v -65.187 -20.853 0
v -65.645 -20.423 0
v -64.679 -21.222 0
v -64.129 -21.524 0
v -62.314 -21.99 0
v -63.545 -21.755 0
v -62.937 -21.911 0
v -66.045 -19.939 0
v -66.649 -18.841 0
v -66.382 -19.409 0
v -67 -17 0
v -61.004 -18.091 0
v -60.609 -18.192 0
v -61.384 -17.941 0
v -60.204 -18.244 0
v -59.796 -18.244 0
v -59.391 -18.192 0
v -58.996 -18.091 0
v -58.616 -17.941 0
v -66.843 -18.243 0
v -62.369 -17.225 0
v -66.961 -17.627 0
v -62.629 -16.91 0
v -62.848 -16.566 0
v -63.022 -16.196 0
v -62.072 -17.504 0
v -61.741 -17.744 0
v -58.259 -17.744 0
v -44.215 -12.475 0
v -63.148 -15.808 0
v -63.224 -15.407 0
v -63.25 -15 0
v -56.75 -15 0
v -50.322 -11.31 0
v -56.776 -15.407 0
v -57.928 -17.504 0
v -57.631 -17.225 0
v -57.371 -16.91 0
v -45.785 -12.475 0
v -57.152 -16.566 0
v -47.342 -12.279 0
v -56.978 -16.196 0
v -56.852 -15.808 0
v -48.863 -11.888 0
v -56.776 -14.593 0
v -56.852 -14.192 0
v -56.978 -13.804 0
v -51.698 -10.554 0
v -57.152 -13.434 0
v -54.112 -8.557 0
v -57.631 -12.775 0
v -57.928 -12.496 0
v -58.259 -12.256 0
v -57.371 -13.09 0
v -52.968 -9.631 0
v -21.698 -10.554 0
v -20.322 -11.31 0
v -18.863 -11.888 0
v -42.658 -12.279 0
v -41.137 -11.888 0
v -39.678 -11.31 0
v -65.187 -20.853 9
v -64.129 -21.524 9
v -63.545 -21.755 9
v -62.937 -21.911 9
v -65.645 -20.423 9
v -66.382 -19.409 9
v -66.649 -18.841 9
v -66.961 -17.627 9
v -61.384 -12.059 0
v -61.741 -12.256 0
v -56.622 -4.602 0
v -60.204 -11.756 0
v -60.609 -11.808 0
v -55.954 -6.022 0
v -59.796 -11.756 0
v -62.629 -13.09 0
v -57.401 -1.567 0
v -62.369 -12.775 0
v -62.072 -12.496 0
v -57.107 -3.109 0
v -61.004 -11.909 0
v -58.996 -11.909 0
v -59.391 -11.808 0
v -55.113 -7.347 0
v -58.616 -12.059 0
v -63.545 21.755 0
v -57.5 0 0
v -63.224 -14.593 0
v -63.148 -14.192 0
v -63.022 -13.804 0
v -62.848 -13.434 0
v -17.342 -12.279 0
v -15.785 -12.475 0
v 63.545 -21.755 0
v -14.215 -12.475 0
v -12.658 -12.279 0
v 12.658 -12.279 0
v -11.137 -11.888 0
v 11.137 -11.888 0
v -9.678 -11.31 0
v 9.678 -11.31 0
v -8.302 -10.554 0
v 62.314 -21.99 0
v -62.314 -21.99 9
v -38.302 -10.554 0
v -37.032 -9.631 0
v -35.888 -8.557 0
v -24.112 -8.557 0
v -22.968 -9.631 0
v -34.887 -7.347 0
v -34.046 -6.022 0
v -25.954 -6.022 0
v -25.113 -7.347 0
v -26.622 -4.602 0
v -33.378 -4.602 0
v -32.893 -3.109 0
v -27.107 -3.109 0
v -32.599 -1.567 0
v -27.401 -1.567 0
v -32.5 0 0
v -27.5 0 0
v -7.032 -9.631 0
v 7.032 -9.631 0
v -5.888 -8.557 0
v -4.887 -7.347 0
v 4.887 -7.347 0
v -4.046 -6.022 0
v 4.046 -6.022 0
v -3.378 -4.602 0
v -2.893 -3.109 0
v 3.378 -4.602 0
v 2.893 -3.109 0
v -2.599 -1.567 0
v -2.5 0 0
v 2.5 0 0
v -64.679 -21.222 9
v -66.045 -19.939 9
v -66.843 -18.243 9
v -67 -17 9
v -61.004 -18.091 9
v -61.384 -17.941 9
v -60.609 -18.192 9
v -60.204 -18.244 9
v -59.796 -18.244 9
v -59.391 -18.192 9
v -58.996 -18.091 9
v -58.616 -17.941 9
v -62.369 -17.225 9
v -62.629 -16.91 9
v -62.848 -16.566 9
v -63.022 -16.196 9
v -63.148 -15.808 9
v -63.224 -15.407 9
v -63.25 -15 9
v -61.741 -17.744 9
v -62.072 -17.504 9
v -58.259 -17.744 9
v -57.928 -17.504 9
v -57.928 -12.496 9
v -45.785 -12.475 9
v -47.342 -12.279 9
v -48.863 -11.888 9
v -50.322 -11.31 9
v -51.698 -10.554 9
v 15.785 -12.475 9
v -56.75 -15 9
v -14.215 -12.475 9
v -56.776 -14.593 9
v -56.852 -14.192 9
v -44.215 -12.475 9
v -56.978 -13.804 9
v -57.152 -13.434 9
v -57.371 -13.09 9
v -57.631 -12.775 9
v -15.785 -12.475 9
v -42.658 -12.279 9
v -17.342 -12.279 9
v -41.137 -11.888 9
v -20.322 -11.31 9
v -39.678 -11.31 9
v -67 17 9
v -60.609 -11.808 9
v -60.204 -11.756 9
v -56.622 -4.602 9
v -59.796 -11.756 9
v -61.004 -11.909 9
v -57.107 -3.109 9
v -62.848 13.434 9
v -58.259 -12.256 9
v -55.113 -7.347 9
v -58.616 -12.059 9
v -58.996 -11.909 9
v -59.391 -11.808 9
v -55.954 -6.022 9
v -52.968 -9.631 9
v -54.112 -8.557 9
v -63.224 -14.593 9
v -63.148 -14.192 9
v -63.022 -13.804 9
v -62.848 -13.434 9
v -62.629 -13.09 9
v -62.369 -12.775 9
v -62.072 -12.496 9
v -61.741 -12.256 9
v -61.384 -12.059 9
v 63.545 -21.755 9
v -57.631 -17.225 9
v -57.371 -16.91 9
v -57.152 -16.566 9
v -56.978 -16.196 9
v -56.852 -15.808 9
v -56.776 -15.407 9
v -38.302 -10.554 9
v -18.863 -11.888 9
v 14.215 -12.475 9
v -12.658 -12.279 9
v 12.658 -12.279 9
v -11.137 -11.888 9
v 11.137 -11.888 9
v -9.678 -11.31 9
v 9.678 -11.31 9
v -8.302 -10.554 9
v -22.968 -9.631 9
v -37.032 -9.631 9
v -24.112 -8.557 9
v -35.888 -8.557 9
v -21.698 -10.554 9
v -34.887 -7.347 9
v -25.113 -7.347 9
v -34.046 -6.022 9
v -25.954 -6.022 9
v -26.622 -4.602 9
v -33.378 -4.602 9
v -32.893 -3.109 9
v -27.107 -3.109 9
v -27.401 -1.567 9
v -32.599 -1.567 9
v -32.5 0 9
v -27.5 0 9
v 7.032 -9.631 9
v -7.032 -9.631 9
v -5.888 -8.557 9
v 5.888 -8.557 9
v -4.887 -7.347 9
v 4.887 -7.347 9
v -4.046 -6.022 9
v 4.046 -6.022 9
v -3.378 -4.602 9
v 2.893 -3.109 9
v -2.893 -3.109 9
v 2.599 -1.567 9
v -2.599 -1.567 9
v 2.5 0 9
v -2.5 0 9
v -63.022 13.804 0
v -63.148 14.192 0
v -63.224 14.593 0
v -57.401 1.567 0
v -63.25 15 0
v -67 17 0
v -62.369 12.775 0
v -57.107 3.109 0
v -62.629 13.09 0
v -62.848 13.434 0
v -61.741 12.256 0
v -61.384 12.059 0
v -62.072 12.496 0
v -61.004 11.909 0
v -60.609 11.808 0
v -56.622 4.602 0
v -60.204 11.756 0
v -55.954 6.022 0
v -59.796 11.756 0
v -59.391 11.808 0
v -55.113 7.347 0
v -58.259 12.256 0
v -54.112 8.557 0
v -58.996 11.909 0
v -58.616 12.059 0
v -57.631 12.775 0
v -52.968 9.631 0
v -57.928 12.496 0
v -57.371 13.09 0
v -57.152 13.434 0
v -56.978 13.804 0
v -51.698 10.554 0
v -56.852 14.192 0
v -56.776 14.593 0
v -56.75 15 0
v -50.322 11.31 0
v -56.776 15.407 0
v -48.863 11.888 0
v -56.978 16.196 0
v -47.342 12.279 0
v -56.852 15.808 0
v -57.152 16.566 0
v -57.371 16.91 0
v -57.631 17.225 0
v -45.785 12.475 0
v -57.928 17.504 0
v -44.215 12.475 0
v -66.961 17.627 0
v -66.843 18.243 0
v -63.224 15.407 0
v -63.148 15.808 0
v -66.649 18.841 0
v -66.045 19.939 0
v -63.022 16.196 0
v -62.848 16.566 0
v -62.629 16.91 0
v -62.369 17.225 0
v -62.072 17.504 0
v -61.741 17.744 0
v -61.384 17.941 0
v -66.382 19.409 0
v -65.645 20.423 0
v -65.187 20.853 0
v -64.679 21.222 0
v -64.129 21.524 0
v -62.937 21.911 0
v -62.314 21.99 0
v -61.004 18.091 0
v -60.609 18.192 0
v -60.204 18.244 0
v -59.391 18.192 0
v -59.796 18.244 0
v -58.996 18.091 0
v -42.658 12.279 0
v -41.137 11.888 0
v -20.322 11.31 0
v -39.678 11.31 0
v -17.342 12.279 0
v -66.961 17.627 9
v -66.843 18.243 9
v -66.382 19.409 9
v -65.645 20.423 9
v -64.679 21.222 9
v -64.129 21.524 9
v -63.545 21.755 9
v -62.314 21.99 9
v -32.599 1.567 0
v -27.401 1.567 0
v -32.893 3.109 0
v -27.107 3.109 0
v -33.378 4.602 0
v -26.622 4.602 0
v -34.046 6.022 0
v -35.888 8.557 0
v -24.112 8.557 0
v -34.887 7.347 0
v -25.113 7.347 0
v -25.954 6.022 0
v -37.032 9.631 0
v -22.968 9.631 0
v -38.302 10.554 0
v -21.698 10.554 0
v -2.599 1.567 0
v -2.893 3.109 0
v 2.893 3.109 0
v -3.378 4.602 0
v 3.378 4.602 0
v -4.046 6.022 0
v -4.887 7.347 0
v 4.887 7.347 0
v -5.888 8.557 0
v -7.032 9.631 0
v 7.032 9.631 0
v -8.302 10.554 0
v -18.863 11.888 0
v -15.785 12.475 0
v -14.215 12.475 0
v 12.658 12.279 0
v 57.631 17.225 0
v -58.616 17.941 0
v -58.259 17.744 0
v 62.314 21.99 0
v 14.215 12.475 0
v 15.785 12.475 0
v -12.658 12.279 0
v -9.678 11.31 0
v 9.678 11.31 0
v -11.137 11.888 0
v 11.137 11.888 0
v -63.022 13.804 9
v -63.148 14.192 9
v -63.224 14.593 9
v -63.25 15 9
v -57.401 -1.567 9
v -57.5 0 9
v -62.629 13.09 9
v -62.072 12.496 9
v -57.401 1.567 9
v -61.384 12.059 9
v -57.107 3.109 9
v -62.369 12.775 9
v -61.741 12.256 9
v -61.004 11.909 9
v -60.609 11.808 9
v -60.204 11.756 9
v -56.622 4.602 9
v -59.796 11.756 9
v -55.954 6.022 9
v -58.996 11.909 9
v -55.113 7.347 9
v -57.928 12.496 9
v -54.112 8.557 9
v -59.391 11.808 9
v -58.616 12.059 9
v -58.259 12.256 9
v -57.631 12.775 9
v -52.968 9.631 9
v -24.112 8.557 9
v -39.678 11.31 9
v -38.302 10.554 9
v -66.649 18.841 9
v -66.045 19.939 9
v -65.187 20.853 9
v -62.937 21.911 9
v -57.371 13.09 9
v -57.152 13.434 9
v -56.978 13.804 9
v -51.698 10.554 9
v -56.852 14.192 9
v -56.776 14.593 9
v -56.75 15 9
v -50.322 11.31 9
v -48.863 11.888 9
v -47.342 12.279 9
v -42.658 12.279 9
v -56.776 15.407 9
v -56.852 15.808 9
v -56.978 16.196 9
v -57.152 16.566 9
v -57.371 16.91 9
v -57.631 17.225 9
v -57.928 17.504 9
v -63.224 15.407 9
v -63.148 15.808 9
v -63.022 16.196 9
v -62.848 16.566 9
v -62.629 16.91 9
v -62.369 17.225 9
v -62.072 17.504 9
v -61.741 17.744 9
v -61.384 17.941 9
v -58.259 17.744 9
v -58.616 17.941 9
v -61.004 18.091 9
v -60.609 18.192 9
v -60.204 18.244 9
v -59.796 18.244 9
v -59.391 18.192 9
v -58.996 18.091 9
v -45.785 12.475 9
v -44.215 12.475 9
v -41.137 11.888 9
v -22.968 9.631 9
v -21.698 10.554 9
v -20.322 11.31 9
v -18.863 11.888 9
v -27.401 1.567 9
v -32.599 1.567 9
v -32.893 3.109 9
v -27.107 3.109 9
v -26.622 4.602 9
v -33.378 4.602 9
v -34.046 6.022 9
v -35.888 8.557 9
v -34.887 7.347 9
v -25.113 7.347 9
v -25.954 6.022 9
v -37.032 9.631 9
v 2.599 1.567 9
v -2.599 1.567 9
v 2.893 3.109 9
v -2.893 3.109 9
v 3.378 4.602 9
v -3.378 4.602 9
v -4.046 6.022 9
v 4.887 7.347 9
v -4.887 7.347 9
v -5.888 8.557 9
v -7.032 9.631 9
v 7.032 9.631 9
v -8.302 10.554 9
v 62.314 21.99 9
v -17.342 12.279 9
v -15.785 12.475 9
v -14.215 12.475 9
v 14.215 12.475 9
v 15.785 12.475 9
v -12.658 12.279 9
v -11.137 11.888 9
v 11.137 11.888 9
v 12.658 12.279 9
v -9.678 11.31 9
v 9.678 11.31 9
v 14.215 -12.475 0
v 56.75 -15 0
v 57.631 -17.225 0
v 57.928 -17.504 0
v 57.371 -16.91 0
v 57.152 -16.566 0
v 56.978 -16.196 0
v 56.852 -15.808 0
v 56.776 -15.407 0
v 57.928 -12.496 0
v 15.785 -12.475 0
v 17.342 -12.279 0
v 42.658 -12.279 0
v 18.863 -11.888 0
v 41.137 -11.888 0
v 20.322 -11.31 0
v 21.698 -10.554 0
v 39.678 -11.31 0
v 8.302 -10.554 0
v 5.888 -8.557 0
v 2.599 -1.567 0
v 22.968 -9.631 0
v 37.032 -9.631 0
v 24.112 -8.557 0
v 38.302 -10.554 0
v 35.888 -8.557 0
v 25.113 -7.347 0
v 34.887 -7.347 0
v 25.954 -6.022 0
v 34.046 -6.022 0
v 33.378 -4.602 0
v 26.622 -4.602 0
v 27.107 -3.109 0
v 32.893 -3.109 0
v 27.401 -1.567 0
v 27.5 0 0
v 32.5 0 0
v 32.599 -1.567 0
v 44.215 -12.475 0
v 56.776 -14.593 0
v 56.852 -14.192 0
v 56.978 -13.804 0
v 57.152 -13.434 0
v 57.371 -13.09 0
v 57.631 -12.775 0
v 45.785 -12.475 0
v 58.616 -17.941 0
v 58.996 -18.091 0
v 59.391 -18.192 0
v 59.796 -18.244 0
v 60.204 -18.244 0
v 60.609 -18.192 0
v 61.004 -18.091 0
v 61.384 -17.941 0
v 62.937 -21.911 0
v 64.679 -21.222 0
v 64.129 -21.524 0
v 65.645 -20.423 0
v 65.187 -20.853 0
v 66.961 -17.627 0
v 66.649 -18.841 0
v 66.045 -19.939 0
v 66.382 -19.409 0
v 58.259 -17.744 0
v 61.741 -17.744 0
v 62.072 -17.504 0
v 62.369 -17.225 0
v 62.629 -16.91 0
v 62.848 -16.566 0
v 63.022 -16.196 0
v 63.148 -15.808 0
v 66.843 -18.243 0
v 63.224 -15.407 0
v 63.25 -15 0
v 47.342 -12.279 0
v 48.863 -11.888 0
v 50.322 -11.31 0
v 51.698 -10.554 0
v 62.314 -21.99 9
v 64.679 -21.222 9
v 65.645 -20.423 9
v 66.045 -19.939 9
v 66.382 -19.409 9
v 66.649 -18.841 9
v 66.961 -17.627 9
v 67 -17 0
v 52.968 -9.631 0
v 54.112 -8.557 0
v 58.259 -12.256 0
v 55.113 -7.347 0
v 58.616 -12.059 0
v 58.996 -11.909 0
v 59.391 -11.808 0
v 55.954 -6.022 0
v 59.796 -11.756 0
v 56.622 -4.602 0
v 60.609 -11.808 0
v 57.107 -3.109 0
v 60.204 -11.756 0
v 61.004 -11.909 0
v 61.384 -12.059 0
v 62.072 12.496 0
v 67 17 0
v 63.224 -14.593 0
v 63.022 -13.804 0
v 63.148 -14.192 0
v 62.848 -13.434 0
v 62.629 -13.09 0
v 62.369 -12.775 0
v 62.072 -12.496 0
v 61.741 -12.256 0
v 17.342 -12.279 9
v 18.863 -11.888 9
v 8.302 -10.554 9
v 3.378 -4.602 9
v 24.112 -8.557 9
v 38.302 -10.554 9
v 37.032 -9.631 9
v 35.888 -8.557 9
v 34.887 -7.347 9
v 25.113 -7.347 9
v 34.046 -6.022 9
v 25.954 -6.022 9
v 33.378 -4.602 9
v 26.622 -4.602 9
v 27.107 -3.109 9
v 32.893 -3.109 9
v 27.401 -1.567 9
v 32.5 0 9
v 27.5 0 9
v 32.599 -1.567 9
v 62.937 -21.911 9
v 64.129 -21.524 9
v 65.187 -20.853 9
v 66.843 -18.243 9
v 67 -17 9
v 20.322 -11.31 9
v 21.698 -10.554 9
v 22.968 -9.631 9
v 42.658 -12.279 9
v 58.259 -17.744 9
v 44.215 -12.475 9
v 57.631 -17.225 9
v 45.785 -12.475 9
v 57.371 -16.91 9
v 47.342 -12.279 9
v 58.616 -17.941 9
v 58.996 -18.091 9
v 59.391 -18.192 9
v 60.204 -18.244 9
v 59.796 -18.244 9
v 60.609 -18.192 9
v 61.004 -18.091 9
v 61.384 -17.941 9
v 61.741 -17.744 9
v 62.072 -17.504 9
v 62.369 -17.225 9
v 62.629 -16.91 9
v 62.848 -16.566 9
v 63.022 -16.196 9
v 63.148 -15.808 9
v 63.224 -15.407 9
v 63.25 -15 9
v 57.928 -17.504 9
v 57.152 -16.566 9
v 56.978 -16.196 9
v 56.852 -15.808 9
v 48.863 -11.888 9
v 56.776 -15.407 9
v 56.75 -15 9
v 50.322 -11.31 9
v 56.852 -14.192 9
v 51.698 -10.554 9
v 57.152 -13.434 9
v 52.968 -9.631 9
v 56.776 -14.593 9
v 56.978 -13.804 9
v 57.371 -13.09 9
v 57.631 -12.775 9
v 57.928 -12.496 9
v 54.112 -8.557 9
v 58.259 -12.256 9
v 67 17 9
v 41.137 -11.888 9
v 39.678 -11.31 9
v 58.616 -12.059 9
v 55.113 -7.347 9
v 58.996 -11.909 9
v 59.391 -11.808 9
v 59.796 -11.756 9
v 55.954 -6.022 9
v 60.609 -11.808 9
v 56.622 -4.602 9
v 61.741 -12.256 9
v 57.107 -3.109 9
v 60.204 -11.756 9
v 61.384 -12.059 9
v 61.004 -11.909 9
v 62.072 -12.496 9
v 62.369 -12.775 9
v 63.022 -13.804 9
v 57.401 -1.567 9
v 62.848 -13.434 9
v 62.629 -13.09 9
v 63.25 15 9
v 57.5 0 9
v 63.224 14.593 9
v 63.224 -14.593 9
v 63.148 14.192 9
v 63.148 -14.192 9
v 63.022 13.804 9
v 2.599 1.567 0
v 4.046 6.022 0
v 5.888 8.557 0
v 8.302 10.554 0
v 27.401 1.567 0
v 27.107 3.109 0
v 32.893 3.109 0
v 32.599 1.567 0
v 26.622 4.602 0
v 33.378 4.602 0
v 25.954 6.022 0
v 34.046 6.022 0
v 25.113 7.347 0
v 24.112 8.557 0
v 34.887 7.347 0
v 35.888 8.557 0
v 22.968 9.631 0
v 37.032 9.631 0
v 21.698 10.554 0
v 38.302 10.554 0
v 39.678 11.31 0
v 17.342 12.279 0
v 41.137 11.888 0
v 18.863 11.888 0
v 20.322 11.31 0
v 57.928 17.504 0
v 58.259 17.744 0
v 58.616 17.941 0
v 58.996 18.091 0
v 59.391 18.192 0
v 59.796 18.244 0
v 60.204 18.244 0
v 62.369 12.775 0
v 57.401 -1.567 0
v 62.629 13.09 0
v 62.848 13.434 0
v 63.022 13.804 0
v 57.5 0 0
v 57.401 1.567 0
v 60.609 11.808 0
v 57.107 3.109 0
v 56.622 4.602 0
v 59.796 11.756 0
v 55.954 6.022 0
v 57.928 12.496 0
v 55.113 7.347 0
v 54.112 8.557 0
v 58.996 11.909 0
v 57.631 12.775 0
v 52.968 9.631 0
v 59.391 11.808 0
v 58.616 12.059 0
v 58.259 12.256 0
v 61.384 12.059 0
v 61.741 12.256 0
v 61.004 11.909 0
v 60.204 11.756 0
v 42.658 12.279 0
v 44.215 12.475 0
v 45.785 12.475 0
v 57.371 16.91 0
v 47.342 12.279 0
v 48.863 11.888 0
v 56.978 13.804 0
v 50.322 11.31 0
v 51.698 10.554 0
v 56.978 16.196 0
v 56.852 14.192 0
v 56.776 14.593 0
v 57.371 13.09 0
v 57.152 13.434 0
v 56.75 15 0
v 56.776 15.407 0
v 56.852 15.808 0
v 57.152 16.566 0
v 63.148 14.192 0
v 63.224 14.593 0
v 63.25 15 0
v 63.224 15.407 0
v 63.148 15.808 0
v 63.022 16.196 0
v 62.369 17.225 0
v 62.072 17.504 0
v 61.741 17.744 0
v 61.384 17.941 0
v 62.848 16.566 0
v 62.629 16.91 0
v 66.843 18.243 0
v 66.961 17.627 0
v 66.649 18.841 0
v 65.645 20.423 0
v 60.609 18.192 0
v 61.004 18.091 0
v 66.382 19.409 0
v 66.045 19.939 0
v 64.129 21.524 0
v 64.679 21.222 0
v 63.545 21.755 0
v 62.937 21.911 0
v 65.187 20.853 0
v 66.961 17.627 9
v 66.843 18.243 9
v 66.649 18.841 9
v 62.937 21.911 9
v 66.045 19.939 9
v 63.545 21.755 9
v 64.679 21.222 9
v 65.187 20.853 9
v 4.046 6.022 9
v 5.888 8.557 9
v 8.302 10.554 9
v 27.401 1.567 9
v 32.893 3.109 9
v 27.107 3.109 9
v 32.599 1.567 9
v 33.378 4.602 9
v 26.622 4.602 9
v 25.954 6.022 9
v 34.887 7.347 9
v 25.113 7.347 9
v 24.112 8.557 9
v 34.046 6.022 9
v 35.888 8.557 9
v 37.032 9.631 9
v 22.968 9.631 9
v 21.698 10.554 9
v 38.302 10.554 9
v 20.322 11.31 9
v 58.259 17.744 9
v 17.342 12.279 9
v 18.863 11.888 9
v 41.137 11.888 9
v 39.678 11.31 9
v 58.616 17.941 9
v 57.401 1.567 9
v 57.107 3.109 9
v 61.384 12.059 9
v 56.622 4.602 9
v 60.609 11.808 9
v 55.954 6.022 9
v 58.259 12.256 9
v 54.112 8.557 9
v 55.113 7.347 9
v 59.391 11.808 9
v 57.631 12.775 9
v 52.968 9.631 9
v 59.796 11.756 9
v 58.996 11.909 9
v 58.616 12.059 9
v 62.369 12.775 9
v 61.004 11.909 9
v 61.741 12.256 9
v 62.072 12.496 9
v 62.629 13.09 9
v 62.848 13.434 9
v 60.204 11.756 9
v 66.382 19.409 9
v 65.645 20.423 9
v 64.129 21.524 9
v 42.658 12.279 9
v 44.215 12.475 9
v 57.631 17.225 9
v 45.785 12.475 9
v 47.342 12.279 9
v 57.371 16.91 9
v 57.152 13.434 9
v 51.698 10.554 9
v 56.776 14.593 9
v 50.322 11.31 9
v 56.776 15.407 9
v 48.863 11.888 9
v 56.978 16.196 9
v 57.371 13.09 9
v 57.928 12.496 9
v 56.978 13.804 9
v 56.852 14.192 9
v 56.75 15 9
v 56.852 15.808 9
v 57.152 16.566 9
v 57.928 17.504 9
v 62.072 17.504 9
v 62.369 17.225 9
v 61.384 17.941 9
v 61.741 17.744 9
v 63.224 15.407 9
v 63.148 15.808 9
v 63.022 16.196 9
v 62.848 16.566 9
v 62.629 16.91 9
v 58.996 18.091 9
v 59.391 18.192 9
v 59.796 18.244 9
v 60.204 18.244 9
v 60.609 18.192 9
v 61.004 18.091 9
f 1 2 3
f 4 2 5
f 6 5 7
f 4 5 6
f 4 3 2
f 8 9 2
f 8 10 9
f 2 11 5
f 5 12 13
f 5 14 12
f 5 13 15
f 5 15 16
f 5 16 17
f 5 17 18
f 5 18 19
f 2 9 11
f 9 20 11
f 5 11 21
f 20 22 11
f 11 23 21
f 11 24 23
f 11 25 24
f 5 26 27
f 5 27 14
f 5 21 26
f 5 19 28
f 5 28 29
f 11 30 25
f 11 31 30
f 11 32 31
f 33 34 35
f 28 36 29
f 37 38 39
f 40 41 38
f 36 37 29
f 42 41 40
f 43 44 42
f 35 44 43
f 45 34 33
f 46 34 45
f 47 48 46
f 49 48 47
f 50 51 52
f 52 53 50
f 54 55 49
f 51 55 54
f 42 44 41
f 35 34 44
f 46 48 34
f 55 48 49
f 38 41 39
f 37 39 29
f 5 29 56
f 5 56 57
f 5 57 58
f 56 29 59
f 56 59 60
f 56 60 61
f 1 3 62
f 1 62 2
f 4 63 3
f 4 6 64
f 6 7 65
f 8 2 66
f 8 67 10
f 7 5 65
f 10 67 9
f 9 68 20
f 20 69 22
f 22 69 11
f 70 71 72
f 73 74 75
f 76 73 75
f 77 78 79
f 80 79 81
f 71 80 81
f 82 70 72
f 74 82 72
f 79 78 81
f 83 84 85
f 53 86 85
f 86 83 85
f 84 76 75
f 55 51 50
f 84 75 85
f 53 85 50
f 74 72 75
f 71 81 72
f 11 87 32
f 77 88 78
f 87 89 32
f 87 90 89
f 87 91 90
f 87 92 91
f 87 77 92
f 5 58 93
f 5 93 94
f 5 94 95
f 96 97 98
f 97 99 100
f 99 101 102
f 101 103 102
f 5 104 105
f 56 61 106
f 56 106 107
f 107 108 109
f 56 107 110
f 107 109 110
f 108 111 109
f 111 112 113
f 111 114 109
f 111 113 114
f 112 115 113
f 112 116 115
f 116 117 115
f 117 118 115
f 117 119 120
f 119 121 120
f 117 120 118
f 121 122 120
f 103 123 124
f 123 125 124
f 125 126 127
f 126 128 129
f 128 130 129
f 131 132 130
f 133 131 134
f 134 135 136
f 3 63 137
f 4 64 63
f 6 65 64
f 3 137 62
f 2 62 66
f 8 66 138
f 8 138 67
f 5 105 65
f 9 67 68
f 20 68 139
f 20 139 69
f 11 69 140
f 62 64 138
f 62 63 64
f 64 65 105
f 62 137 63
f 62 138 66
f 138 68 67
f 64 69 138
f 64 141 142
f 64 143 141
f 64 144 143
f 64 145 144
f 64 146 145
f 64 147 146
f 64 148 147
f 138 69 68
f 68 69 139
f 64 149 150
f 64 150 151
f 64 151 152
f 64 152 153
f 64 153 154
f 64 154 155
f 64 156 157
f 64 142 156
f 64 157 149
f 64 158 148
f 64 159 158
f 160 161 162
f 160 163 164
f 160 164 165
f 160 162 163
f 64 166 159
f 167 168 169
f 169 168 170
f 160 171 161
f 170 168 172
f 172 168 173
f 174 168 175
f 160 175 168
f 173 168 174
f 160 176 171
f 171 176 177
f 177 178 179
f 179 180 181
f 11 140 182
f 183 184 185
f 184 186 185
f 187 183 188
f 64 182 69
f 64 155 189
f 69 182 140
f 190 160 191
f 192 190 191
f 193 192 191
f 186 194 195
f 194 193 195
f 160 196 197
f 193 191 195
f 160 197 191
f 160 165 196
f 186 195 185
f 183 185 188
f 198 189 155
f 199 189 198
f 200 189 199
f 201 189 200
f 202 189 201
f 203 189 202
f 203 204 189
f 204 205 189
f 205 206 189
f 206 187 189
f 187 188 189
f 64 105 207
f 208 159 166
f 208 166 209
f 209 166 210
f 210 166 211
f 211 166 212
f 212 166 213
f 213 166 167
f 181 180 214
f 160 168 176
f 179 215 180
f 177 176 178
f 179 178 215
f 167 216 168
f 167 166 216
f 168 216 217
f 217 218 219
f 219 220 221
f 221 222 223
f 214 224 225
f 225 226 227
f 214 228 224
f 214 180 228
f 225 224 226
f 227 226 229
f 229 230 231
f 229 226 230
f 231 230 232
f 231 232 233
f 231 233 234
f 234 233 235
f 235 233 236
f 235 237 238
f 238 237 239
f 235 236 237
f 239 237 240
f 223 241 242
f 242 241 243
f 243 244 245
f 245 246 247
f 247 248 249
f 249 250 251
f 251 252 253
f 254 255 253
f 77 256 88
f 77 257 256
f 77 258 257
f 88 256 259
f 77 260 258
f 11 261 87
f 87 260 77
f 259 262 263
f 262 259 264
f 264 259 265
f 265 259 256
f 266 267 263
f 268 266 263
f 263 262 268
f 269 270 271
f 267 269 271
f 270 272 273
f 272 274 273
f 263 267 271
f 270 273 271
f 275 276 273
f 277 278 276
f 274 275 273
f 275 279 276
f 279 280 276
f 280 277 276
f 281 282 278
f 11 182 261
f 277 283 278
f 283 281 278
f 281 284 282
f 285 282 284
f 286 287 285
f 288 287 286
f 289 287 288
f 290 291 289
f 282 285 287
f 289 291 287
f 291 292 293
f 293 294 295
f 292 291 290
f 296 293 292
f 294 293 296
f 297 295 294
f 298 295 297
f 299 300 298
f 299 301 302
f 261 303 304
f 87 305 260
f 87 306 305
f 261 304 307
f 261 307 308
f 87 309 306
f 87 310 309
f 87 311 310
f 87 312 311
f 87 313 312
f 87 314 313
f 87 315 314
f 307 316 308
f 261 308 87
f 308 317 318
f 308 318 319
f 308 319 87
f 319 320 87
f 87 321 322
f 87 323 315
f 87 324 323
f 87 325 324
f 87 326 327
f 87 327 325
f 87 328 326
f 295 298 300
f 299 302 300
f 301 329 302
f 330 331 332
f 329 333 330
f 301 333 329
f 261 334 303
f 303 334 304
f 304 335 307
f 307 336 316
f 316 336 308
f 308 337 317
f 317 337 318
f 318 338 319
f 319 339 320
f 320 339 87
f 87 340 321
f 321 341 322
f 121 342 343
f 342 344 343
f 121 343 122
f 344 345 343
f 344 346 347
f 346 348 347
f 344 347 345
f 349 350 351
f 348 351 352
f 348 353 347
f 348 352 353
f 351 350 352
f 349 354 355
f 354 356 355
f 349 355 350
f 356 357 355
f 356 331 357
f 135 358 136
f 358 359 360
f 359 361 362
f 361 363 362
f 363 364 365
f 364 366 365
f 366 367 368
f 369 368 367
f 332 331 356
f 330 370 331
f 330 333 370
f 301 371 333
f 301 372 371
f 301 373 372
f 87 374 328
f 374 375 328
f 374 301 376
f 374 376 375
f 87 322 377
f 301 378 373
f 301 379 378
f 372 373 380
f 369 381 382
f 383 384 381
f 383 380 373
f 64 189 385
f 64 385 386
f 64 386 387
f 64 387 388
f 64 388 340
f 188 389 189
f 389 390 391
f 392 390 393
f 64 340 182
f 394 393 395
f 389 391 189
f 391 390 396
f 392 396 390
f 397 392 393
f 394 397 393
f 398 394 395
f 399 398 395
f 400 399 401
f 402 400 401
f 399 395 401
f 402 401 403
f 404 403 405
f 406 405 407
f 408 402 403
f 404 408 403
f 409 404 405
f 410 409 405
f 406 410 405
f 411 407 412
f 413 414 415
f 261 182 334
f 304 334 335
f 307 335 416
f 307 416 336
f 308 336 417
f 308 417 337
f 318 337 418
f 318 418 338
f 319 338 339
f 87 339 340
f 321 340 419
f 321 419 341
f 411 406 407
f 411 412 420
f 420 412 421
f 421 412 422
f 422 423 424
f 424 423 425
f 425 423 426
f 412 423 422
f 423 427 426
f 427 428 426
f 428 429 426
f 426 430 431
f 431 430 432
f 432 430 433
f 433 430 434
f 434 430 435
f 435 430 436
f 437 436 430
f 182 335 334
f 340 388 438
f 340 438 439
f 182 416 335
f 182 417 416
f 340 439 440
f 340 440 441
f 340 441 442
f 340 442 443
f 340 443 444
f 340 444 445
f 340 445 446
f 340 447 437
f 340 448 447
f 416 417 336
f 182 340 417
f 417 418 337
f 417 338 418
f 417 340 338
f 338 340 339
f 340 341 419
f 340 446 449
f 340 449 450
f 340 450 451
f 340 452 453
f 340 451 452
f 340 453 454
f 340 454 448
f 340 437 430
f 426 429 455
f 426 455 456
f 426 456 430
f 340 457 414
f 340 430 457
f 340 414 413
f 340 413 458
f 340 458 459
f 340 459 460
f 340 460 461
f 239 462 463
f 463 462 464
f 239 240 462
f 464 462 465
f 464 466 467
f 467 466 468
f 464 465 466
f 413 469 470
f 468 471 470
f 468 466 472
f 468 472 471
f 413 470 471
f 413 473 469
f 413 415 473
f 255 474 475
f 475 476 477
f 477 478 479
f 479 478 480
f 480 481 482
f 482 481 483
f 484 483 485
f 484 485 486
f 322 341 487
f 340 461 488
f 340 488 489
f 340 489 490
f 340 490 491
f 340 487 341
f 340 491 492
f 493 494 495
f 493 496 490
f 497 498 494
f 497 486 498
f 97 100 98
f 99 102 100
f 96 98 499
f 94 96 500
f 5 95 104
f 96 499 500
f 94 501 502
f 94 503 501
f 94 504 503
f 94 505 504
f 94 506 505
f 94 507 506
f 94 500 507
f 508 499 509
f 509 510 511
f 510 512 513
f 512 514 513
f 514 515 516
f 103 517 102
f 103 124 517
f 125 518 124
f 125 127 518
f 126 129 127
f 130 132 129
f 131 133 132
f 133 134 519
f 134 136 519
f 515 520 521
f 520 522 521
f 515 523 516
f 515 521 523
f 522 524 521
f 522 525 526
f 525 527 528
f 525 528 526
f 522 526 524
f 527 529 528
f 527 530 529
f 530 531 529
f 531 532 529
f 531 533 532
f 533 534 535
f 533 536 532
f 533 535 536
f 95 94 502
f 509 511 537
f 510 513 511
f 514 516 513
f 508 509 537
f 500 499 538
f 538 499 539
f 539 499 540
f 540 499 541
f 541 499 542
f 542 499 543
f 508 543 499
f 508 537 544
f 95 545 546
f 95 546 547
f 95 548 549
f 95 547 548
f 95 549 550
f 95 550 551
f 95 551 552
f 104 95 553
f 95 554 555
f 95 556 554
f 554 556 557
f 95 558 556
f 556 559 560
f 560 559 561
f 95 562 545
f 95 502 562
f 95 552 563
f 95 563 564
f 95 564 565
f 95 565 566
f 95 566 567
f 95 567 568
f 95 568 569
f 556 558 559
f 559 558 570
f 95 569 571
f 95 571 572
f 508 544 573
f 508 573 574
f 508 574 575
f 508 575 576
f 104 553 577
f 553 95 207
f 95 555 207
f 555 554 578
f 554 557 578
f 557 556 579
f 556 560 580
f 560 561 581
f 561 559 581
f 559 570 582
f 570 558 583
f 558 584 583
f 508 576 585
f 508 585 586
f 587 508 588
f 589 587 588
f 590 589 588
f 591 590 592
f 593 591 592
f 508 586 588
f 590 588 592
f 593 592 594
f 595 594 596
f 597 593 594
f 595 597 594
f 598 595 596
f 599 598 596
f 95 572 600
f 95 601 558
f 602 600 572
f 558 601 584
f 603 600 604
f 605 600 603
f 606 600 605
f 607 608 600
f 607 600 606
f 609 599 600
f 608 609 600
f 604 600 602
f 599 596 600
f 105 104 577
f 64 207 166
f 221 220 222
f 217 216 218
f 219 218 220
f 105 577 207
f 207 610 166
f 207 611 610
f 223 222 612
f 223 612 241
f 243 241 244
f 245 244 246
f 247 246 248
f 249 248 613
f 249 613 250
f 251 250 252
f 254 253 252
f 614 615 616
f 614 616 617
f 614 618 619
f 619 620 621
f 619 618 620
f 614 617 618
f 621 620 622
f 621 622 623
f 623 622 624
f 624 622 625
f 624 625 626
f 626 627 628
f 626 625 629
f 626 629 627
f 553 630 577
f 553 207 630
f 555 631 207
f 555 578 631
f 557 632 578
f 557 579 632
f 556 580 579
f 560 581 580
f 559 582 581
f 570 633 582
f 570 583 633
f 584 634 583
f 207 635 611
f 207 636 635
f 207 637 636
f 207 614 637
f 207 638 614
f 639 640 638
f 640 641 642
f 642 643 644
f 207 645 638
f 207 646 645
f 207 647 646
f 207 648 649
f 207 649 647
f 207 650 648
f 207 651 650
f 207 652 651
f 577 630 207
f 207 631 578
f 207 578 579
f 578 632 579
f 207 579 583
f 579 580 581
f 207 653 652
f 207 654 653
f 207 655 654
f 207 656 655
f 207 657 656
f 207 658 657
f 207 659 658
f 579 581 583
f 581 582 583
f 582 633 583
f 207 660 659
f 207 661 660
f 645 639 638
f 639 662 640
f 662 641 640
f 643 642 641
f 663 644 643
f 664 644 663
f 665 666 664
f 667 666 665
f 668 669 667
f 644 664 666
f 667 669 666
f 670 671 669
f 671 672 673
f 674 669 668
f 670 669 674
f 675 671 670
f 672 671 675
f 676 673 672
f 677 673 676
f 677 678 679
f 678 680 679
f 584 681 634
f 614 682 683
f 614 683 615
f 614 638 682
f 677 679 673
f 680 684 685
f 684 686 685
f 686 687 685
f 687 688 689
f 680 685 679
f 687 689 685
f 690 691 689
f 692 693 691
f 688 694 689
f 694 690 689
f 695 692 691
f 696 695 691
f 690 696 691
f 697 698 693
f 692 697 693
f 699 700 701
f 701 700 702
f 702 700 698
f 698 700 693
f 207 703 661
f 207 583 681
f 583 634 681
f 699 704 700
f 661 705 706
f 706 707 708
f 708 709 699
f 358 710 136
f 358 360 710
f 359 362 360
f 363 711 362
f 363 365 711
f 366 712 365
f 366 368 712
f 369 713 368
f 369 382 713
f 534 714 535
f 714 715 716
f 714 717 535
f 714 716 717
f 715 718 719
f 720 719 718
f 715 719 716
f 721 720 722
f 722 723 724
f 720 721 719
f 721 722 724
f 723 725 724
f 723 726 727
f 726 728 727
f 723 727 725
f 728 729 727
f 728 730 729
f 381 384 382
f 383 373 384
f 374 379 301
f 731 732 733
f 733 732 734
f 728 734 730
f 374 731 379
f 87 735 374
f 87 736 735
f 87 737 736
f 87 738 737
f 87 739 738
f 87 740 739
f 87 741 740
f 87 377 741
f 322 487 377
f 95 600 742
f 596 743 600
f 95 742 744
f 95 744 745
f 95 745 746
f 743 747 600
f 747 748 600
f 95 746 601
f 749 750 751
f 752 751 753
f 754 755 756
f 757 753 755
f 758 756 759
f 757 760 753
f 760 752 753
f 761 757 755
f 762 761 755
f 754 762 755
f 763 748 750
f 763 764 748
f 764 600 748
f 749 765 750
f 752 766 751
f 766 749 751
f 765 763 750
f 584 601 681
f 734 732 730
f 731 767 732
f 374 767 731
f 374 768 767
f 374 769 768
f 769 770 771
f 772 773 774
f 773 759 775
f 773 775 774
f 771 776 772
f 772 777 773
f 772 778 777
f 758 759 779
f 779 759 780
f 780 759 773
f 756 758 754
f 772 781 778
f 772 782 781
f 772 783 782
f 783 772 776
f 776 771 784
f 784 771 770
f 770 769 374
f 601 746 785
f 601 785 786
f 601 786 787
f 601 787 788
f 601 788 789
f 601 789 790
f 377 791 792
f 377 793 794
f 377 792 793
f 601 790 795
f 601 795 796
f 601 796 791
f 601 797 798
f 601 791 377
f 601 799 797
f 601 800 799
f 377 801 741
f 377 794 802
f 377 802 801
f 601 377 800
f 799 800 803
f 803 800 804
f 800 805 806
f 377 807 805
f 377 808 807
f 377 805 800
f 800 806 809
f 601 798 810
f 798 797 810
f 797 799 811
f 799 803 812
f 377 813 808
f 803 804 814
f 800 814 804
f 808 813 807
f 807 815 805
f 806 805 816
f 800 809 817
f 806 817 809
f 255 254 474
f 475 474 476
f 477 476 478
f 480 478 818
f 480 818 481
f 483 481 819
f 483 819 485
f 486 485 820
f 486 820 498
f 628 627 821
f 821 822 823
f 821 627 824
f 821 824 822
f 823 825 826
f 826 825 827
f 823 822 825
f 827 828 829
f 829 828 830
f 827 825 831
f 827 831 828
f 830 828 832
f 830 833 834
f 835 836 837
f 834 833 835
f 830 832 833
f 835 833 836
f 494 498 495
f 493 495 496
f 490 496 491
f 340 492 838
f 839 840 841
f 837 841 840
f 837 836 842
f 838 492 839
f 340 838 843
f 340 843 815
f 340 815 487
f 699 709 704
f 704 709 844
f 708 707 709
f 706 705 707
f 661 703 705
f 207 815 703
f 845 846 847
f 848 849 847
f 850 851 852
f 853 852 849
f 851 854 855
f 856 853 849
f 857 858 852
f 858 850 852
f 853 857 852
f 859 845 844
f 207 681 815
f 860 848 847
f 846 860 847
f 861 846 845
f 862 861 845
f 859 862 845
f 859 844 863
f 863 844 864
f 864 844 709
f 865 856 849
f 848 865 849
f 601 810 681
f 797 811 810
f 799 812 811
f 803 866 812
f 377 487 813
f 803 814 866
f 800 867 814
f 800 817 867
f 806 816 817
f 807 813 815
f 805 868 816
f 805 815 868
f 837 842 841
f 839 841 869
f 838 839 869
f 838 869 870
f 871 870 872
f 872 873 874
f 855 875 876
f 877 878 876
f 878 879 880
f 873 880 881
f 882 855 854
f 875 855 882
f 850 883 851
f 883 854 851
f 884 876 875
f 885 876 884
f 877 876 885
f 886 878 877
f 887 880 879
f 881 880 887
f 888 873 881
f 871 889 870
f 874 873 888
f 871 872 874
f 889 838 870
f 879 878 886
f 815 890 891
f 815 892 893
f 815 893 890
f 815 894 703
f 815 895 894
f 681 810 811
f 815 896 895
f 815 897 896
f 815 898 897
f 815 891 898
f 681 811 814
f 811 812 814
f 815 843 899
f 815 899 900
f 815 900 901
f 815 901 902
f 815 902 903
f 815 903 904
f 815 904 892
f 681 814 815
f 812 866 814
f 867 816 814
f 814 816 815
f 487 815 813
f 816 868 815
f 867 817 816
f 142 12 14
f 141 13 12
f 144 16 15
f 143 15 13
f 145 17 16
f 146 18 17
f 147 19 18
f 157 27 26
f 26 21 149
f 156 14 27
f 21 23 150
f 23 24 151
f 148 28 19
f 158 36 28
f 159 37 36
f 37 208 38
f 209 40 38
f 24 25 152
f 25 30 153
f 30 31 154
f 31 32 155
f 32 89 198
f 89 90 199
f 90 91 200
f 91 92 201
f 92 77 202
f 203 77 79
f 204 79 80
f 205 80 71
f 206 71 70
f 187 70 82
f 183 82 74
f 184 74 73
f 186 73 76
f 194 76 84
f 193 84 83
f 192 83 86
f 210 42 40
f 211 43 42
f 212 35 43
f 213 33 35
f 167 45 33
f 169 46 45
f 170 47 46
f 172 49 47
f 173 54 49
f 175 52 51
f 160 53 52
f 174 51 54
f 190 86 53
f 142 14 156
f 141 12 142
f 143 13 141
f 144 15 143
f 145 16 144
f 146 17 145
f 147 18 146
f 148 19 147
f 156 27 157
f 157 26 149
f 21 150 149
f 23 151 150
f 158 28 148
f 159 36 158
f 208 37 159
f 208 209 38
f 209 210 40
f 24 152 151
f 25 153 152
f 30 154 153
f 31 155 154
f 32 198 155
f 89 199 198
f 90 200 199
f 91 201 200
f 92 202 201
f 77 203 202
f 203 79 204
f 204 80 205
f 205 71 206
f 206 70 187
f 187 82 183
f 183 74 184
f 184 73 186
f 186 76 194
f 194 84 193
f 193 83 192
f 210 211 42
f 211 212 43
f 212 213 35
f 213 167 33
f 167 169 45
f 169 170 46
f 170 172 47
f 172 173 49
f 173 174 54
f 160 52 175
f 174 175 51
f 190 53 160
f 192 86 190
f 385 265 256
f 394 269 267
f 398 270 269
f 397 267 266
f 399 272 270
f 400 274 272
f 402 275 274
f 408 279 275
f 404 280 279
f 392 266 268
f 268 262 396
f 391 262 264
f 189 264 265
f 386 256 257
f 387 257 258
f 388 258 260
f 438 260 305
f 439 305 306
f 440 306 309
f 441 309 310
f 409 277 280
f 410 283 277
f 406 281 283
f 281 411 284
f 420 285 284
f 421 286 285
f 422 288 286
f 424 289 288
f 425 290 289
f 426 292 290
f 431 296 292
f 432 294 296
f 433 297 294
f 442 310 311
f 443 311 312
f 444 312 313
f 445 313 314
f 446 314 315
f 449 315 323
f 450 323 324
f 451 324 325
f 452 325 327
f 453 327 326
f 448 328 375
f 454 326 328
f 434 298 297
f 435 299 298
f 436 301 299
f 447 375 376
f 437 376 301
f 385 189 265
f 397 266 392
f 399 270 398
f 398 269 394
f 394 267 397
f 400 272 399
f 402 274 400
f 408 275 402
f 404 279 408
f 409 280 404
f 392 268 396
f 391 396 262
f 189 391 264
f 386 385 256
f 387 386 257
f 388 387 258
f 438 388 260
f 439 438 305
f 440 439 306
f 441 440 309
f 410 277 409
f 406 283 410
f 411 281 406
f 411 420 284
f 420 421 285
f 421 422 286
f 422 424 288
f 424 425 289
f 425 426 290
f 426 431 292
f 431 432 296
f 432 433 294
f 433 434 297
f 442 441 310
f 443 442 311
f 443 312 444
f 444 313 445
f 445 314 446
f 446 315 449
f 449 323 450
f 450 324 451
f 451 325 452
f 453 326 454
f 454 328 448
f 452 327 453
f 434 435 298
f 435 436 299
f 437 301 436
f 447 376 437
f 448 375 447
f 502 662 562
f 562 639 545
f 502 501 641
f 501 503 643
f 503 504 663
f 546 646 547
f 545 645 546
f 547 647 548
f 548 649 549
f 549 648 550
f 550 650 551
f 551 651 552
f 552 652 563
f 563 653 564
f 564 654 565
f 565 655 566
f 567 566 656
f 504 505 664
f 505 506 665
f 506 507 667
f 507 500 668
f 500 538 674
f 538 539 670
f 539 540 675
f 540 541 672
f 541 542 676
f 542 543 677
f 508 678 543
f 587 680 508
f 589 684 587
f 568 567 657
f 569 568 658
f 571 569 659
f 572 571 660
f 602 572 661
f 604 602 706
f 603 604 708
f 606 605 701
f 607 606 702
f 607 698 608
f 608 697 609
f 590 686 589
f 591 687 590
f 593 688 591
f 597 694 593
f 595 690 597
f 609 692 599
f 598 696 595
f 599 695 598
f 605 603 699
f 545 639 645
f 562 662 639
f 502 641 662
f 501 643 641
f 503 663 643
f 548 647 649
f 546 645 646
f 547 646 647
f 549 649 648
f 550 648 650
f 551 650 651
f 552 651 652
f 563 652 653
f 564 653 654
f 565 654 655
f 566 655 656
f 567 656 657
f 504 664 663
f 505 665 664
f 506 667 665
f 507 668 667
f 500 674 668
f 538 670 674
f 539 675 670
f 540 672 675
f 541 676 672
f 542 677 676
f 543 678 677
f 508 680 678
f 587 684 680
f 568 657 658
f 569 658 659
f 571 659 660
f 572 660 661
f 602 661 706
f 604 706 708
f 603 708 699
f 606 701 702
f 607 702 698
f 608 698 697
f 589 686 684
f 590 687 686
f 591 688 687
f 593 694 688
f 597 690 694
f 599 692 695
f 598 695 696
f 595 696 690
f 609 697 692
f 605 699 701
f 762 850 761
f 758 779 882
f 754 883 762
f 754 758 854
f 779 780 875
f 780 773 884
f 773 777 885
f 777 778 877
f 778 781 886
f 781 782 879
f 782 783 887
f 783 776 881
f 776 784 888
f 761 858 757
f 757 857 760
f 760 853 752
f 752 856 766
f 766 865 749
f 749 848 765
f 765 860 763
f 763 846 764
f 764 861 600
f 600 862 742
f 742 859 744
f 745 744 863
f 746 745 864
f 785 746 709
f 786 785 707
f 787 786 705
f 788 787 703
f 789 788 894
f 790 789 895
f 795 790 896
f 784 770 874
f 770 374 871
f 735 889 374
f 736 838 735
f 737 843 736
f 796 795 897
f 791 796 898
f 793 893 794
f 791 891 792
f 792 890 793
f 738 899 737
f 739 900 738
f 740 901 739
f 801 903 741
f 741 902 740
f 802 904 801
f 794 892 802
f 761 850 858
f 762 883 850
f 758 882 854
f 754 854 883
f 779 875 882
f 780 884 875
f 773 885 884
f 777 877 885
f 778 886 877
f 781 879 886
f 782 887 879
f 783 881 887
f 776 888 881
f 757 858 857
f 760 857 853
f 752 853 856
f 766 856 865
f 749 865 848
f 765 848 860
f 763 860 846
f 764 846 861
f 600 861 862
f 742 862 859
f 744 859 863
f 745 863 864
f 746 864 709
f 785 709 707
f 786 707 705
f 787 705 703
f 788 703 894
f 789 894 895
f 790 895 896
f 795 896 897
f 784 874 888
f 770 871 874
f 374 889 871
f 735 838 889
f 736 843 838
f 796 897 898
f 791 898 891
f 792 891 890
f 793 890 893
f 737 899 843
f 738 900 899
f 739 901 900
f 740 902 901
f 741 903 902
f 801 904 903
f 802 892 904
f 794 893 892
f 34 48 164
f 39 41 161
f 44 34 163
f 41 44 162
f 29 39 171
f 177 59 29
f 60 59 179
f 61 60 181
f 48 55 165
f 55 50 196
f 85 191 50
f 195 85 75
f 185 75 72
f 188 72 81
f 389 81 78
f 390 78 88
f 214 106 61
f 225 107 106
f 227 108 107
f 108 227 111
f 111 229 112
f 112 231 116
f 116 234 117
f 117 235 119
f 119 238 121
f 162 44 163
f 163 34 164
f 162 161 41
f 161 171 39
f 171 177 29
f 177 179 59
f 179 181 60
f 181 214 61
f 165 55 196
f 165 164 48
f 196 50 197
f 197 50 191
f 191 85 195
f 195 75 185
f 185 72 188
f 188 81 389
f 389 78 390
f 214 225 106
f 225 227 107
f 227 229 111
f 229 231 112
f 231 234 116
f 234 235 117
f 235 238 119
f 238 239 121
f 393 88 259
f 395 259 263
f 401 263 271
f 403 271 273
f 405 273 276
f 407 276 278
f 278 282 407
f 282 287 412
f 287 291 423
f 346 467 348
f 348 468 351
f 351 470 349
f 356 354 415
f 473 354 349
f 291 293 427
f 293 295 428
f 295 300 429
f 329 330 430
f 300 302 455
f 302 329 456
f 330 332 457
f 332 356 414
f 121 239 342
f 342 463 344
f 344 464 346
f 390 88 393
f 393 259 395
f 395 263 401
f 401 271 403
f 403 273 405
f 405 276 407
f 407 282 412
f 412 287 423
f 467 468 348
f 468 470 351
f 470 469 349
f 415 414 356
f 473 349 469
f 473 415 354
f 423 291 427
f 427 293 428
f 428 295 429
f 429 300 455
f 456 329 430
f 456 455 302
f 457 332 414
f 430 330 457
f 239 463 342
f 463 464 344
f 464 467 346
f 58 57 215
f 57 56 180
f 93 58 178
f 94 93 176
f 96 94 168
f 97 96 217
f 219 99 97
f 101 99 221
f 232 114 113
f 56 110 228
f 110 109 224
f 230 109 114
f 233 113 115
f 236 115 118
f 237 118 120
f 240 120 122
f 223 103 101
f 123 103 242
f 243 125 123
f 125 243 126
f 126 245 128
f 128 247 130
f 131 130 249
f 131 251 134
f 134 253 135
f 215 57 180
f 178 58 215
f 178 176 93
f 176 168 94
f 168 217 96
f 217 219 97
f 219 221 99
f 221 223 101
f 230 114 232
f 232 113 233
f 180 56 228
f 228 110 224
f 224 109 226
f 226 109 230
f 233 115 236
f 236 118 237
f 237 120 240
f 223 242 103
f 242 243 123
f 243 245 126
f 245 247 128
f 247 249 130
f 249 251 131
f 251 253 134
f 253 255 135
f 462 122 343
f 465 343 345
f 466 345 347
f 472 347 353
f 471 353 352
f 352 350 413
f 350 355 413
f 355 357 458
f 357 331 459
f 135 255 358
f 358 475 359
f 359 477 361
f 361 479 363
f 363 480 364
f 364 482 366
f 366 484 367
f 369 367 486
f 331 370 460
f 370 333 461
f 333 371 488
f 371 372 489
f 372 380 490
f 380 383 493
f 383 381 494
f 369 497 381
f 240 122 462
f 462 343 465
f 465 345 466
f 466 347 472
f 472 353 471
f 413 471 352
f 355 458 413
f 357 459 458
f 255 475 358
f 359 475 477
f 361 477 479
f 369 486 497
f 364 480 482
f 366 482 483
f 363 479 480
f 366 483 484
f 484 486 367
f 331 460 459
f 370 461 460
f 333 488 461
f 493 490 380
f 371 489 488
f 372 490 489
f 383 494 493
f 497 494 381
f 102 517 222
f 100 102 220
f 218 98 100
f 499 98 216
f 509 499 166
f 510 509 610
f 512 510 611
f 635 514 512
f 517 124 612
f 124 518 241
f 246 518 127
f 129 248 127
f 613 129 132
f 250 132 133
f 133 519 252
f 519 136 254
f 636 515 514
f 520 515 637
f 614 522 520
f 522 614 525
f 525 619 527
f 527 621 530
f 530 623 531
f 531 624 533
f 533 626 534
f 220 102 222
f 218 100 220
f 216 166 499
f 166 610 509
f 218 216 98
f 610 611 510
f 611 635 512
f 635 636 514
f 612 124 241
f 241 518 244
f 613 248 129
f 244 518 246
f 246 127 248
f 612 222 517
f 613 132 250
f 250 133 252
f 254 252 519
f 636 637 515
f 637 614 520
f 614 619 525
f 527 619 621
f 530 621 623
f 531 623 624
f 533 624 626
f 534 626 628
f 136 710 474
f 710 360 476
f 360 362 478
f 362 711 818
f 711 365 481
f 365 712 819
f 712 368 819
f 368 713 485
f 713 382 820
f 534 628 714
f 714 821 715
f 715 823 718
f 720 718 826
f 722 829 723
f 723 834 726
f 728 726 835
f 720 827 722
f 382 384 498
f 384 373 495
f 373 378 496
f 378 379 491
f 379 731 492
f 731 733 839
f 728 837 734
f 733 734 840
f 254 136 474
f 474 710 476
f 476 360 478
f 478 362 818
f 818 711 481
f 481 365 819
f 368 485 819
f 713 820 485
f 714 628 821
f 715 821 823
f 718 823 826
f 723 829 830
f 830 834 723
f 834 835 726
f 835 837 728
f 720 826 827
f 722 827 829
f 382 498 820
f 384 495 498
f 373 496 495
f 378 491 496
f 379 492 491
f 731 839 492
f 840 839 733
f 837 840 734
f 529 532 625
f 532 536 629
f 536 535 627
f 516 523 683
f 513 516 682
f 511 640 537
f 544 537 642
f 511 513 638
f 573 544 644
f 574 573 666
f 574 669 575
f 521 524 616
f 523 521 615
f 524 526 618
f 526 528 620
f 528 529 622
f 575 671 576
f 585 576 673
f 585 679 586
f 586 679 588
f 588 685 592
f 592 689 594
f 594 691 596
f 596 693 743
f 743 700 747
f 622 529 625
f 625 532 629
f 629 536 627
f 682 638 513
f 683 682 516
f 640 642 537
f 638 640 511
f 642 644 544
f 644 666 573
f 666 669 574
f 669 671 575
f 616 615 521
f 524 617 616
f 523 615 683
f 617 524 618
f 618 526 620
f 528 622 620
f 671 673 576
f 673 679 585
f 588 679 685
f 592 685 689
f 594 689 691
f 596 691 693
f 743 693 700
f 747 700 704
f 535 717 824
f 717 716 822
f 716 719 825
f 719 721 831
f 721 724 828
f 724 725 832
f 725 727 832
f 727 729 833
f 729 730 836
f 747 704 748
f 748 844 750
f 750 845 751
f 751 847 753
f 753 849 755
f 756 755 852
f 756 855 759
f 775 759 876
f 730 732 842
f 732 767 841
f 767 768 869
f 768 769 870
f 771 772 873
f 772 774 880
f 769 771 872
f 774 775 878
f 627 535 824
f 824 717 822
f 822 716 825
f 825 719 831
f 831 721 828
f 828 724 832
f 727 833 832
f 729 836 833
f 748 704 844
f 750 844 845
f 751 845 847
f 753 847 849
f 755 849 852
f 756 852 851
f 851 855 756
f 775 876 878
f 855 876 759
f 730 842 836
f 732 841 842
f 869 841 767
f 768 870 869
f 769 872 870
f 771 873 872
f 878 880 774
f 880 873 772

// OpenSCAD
$fn = 50;

difference() {
	union() {
		hull() {
			translate(v = [-62.0, 17.0, 0]) {
				cylinder(h = 9, r = 5);
			}
			translate(v = [62.0, 17.0, 0]) {
				cylinder(h = 9, r = 5);
			}
			translate(v = [-62.0, -17.0, 0]) {
				cylinder(h = 9, r = 5);
			}
			translate(v = [62.0, -17.0, 0]) {
				cylinder(h = 9, r = 5);
			}
		}
	}
	union() {
		translate(v = [-60.0, -15.0, -100.0]) {
			cylinder(h = 200, r = 3.25);
		}
		translate(v = [-60.0, 15.0, -100.0]) {
			cylinder(h = 200, r = 3.25);
		}
		translate(v = [60.0, -15.0, -100.0]) {
			cylinder(h = 200, r = 3.25);
		}
		translate(v = [60.0, 15.0, -100.0]) {
			cylinder(h = 200, r = 3.25);
		}
		translate(v = [-60.0, -15.0, -100.0]) {
			cylinder(h = 200, r = 1.8);
		}
		translate(v = [-60.0, 15.0, -100.0]) {
			cylinder(h = 200, r = 1.8);
		}
		translate(v = [60.0, -15.0, -100.0]) {
			cylinder(h = 200, r = 1.8);
		}
		translate(v = [60.0, 15.0, -100.0]) {
			cylinder(h = 200, r = 1.8);
		}
		translate(v = [-45.0, 0, 0.0]) {
			cylinder(h = 9, r = 12.5);
		}
		translate(v = [-15.0, 0, 0.0]) {
			cylinder(h = 9, r = 12.5);
		}
		translate(v = [15.0, 0, 0.0]) {
			cylinder(h = 9, r = 12.5);
		}
		translate(v = [45.0, 0, 0.0]) {
			cylinder(h = 9, r = 12.5);
		}
	}
}
